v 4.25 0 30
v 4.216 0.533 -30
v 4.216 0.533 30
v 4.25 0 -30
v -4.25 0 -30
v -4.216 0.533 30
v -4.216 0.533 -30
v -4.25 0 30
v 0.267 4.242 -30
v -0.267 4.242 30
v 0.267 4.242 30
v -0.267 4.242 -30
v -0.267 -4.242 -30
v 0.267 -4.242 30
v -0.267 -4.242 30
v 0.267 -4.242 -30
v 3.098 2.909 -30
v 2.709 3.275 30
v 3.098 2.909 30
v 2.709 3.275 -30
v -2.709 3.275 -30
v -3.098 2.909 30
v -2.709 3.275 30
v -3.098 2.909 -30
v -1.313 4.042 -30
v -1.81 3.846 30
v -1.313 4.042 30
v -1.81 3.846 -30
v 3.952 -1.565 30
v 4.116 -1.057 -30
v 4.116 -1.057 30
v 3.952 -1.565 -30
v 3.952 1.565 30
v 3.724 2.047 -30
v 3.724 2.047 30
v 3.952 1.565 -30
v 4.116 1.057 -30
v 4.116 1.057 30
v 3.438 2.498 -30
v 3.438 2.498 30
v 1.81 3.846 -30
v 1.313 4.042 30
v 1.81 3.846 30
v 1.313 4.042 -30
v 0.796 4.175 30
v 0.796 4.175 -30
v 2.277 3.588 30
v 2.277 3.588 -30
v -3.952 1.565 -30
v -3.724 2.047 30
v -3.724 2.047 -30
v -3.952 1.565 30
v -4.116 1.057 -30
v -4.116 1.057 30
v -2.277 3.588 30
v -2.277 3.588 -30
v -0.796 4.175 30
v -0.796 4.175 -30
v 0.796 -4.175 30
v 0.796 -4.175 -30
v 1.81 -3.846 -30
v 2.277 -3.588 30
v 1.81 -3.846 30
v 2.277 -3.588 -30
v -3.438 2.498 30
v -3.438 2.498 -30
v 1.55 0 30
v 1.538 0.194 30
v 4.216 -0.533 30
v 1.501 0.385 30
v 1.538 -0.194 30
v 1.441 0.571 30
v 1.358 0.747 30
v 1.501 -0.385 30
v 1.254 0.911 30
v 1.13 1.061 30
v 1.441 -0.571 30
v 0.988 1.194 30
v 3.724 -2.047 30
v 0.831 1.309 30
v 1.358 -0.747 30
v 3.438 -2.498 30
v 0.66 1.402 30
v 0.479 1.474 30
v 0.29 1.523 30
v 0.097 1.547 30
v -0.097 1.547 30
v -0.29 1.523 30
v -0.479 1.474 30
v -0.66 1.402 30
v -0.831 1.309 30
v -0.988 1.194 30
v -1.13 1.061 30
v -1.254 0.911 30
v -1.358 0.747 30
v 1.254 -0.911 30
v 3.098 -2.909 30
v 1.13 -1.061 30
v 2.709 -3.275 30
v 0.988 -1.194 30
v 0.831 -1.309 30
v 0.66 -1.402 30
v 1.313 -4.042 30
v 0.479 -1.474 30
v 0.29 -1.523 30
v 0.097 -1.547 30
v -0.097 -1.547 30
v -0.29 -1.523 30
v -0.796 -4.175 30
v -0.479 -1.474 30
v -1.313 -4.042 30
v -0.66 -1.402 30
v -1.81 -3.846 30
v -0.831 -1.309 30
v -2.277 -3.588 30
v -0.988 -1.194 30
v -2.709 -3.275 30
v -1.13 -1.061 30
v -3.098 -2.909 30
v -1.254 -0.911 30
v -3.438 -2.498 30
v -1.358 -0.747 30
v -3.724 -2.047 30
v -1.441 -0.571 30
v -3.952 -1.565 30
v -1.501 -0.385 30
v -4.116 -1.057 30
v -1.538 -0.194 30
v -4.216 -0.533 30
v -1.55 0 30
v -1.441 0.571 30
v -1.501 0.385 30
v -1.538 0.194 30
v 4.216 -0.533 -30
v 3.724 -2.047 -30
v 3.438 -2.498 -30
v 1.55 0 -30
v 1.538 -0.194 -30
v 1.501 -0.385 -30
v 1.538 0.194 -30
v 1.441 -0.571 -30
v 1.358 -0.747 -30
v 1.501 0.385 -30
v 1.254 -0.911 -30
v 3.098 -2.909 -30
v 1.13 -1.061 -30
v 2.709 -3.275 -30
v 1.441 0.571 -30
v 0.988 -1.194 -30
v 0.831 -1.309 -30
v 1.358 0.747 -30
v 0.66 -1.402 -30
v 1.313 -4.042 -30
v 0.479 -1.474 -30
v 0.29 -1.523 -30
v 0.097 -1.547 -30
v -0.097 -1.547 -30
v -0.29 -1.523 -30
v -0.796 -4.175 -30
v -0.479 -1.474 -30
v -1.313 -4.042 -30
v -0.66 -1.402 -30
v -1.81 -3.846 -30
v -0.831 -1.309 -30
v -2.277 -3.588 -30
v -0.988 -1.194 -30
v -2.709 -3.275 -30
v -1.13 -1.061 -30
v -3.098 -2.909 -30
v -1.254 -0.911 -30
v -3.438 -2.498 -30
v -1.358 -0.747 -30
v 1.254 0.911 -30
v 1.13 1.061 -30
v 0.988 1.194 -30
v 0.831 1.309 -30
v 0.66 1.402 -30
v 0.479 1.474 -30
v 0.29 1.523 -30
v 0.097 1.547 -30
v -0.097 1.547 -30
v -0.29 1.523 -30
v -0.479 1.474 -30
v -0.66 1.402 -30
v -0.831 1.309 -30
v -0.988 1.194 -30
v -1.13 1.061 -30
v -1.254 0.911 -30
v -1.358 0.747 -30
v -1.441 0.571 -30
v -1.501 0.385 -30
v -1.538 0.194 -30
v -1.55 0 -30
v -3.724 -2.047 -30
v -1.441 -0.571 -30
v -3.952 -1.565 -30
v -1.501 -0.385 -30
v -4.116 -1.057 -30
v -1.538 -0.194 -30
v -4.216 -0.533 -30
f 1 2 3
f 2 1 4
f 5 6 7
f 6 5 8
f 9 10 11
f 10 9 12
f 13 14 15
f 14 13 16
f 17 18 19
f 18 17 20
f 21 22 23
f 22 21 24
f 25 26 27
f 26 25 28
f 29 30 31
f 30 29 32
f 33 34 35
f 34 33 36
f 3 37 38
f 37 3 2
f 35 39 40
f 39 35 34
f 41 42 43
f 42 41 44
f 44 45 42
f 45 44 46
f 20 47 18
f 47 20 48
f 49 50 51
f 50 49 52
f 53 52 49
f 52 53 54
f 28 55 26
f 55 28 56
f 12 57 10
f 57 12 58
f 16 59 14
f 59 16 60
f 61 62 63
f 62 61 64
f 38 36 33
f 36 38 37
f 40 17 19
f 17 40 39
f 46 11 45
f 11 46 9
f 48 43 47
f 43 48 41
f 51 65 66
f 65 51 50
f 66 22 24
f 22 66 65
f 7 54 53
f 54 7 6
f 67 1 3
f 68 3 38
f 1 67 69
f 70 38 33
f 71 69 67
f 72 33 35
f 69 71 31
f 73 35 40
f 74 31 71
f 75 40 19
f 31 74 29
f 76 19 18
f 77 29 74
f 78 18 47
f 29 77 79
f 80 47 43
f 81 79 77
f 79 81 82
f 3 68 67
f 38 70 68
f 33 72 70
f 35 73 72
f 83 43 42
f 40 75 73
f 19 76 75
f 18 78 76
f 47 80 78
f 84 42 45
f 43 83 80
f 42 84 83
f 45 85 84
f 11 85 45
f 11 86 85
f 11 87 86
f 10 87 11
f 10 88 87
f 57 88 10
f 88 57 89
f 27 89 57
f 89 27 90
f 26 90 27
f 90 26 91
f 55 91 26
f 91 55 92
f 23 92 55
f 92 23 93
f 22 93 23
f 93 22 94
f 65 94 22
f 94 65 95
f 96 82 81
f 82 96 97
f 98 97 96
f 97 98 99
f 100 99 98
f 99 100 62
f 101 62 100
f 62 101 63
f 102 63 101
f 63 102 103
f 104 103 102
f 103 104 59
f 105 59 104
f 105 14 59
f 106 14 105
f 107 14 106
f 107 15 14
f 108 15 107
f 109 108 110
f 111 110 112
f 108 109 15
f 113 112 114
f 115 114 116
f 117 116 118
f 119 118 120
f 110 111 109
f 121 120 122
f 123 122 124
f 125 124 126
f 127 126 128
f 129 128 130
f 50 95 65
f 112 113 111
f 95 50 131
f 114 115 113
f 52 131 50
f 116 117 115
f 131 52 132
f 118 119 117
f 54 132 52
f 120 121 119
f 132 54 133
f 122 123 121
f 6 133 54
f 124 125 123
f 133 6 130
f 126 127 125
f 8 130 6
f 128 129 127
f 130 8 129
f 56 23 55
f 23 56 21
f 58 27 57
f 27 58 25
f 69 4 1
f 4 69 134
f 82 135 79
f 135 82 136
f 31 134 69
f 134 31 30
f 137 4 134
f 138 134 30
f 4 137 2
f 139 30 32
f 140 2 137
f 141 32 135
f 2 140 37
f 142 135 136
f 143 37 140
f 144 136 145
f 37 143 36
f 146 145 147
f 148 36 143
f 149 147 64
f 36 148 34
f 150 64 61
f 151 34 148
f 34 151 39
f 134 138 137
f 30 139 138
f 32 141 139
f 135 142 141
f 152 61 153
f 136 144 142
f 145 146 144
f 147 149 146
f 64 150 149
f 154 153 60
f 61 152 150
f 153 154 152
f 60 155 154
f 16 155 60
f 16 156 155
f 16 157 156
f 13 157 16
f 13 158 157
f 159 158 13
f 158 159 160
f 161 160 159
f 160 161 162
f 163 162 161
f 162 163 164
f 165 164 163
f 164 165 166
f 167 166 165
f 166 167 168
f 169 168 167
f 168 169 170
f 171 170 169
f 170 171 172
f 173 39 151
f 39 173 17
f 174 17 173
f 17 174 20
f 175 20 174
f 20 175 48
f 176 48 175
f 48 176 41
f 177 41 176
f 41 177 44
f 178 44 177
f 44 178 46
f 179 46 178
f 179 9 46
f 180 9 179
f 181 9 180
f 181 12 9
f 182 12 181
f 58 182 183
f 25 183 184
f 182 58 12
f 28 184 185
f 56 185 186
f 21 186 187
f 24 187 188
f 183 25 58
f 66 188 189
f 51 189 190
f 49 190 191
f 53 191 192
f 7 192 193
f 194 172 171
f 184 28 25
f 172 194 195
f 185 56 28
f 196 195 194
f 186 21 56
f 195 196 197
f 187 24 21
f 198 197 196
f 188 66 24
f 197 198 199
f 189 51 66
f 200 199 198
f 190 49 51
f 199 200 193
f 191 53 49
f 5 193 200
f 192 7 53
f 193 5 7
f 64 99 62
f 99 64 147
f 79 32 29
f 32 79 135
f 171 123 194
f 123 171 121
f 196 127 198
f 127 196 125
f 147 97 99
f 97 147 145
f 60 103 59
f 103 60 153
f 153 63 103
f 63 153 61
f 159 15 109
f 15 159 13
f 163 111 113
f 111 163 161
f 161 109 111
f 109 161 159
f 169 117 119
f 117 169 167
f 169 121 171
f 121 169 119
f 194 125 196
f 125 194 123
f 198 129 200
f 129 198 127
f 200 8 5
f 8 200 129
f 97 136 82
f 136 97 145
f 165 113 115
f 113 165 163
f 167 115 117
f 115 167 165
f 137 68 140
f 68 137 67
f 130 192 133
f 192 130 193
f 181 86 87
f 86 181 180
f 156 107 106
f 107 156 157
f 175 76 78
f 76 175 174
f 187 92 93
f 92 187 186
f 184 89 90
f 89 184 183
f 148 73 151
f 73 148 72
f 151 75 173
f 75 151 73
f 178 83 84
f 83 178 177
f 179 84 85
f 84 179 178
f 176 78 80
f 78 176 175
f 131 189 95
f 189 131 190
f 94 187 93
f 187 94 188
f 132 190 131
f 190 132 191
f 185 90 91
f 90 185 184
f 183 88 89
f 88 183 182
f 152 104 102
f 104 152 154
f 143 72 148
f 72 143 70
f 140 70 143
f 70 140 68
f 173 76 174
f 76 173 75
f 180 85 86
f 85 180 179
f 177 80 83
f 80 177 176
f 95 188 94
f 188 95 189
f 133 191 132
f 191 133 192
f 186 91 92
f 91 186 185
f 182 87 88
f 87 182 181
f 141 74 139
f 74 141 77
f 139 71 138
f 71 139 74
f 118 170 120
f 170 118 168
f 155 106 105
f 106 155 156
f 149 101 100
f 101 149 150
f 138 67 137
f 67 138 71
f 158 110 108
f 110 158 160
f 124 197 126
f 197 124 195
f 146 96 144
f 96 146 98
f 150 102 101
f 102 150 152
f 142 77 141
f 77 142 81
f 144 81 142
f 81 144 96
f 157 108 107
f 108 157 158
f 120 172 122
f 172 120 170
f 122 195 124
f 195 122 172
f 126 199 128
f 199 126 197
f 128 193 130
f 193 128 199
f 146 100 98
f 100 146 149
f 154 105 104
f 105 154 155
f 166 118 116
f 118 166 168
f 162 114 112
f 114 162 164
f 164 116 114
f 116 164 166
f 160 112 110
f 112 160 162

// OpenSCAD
$fn = 50;


difference() {
	union() {
		translate(v = [0, 0, -30.0000000000]) {
			cylinder(h = 60, r = 4.2500000000);
		}
	}
	union() {
		translate(v = [0, 0, -100.0000000000]) {
			cylinder(h = 200, r = 1.5500000000);
		}
	}
}
